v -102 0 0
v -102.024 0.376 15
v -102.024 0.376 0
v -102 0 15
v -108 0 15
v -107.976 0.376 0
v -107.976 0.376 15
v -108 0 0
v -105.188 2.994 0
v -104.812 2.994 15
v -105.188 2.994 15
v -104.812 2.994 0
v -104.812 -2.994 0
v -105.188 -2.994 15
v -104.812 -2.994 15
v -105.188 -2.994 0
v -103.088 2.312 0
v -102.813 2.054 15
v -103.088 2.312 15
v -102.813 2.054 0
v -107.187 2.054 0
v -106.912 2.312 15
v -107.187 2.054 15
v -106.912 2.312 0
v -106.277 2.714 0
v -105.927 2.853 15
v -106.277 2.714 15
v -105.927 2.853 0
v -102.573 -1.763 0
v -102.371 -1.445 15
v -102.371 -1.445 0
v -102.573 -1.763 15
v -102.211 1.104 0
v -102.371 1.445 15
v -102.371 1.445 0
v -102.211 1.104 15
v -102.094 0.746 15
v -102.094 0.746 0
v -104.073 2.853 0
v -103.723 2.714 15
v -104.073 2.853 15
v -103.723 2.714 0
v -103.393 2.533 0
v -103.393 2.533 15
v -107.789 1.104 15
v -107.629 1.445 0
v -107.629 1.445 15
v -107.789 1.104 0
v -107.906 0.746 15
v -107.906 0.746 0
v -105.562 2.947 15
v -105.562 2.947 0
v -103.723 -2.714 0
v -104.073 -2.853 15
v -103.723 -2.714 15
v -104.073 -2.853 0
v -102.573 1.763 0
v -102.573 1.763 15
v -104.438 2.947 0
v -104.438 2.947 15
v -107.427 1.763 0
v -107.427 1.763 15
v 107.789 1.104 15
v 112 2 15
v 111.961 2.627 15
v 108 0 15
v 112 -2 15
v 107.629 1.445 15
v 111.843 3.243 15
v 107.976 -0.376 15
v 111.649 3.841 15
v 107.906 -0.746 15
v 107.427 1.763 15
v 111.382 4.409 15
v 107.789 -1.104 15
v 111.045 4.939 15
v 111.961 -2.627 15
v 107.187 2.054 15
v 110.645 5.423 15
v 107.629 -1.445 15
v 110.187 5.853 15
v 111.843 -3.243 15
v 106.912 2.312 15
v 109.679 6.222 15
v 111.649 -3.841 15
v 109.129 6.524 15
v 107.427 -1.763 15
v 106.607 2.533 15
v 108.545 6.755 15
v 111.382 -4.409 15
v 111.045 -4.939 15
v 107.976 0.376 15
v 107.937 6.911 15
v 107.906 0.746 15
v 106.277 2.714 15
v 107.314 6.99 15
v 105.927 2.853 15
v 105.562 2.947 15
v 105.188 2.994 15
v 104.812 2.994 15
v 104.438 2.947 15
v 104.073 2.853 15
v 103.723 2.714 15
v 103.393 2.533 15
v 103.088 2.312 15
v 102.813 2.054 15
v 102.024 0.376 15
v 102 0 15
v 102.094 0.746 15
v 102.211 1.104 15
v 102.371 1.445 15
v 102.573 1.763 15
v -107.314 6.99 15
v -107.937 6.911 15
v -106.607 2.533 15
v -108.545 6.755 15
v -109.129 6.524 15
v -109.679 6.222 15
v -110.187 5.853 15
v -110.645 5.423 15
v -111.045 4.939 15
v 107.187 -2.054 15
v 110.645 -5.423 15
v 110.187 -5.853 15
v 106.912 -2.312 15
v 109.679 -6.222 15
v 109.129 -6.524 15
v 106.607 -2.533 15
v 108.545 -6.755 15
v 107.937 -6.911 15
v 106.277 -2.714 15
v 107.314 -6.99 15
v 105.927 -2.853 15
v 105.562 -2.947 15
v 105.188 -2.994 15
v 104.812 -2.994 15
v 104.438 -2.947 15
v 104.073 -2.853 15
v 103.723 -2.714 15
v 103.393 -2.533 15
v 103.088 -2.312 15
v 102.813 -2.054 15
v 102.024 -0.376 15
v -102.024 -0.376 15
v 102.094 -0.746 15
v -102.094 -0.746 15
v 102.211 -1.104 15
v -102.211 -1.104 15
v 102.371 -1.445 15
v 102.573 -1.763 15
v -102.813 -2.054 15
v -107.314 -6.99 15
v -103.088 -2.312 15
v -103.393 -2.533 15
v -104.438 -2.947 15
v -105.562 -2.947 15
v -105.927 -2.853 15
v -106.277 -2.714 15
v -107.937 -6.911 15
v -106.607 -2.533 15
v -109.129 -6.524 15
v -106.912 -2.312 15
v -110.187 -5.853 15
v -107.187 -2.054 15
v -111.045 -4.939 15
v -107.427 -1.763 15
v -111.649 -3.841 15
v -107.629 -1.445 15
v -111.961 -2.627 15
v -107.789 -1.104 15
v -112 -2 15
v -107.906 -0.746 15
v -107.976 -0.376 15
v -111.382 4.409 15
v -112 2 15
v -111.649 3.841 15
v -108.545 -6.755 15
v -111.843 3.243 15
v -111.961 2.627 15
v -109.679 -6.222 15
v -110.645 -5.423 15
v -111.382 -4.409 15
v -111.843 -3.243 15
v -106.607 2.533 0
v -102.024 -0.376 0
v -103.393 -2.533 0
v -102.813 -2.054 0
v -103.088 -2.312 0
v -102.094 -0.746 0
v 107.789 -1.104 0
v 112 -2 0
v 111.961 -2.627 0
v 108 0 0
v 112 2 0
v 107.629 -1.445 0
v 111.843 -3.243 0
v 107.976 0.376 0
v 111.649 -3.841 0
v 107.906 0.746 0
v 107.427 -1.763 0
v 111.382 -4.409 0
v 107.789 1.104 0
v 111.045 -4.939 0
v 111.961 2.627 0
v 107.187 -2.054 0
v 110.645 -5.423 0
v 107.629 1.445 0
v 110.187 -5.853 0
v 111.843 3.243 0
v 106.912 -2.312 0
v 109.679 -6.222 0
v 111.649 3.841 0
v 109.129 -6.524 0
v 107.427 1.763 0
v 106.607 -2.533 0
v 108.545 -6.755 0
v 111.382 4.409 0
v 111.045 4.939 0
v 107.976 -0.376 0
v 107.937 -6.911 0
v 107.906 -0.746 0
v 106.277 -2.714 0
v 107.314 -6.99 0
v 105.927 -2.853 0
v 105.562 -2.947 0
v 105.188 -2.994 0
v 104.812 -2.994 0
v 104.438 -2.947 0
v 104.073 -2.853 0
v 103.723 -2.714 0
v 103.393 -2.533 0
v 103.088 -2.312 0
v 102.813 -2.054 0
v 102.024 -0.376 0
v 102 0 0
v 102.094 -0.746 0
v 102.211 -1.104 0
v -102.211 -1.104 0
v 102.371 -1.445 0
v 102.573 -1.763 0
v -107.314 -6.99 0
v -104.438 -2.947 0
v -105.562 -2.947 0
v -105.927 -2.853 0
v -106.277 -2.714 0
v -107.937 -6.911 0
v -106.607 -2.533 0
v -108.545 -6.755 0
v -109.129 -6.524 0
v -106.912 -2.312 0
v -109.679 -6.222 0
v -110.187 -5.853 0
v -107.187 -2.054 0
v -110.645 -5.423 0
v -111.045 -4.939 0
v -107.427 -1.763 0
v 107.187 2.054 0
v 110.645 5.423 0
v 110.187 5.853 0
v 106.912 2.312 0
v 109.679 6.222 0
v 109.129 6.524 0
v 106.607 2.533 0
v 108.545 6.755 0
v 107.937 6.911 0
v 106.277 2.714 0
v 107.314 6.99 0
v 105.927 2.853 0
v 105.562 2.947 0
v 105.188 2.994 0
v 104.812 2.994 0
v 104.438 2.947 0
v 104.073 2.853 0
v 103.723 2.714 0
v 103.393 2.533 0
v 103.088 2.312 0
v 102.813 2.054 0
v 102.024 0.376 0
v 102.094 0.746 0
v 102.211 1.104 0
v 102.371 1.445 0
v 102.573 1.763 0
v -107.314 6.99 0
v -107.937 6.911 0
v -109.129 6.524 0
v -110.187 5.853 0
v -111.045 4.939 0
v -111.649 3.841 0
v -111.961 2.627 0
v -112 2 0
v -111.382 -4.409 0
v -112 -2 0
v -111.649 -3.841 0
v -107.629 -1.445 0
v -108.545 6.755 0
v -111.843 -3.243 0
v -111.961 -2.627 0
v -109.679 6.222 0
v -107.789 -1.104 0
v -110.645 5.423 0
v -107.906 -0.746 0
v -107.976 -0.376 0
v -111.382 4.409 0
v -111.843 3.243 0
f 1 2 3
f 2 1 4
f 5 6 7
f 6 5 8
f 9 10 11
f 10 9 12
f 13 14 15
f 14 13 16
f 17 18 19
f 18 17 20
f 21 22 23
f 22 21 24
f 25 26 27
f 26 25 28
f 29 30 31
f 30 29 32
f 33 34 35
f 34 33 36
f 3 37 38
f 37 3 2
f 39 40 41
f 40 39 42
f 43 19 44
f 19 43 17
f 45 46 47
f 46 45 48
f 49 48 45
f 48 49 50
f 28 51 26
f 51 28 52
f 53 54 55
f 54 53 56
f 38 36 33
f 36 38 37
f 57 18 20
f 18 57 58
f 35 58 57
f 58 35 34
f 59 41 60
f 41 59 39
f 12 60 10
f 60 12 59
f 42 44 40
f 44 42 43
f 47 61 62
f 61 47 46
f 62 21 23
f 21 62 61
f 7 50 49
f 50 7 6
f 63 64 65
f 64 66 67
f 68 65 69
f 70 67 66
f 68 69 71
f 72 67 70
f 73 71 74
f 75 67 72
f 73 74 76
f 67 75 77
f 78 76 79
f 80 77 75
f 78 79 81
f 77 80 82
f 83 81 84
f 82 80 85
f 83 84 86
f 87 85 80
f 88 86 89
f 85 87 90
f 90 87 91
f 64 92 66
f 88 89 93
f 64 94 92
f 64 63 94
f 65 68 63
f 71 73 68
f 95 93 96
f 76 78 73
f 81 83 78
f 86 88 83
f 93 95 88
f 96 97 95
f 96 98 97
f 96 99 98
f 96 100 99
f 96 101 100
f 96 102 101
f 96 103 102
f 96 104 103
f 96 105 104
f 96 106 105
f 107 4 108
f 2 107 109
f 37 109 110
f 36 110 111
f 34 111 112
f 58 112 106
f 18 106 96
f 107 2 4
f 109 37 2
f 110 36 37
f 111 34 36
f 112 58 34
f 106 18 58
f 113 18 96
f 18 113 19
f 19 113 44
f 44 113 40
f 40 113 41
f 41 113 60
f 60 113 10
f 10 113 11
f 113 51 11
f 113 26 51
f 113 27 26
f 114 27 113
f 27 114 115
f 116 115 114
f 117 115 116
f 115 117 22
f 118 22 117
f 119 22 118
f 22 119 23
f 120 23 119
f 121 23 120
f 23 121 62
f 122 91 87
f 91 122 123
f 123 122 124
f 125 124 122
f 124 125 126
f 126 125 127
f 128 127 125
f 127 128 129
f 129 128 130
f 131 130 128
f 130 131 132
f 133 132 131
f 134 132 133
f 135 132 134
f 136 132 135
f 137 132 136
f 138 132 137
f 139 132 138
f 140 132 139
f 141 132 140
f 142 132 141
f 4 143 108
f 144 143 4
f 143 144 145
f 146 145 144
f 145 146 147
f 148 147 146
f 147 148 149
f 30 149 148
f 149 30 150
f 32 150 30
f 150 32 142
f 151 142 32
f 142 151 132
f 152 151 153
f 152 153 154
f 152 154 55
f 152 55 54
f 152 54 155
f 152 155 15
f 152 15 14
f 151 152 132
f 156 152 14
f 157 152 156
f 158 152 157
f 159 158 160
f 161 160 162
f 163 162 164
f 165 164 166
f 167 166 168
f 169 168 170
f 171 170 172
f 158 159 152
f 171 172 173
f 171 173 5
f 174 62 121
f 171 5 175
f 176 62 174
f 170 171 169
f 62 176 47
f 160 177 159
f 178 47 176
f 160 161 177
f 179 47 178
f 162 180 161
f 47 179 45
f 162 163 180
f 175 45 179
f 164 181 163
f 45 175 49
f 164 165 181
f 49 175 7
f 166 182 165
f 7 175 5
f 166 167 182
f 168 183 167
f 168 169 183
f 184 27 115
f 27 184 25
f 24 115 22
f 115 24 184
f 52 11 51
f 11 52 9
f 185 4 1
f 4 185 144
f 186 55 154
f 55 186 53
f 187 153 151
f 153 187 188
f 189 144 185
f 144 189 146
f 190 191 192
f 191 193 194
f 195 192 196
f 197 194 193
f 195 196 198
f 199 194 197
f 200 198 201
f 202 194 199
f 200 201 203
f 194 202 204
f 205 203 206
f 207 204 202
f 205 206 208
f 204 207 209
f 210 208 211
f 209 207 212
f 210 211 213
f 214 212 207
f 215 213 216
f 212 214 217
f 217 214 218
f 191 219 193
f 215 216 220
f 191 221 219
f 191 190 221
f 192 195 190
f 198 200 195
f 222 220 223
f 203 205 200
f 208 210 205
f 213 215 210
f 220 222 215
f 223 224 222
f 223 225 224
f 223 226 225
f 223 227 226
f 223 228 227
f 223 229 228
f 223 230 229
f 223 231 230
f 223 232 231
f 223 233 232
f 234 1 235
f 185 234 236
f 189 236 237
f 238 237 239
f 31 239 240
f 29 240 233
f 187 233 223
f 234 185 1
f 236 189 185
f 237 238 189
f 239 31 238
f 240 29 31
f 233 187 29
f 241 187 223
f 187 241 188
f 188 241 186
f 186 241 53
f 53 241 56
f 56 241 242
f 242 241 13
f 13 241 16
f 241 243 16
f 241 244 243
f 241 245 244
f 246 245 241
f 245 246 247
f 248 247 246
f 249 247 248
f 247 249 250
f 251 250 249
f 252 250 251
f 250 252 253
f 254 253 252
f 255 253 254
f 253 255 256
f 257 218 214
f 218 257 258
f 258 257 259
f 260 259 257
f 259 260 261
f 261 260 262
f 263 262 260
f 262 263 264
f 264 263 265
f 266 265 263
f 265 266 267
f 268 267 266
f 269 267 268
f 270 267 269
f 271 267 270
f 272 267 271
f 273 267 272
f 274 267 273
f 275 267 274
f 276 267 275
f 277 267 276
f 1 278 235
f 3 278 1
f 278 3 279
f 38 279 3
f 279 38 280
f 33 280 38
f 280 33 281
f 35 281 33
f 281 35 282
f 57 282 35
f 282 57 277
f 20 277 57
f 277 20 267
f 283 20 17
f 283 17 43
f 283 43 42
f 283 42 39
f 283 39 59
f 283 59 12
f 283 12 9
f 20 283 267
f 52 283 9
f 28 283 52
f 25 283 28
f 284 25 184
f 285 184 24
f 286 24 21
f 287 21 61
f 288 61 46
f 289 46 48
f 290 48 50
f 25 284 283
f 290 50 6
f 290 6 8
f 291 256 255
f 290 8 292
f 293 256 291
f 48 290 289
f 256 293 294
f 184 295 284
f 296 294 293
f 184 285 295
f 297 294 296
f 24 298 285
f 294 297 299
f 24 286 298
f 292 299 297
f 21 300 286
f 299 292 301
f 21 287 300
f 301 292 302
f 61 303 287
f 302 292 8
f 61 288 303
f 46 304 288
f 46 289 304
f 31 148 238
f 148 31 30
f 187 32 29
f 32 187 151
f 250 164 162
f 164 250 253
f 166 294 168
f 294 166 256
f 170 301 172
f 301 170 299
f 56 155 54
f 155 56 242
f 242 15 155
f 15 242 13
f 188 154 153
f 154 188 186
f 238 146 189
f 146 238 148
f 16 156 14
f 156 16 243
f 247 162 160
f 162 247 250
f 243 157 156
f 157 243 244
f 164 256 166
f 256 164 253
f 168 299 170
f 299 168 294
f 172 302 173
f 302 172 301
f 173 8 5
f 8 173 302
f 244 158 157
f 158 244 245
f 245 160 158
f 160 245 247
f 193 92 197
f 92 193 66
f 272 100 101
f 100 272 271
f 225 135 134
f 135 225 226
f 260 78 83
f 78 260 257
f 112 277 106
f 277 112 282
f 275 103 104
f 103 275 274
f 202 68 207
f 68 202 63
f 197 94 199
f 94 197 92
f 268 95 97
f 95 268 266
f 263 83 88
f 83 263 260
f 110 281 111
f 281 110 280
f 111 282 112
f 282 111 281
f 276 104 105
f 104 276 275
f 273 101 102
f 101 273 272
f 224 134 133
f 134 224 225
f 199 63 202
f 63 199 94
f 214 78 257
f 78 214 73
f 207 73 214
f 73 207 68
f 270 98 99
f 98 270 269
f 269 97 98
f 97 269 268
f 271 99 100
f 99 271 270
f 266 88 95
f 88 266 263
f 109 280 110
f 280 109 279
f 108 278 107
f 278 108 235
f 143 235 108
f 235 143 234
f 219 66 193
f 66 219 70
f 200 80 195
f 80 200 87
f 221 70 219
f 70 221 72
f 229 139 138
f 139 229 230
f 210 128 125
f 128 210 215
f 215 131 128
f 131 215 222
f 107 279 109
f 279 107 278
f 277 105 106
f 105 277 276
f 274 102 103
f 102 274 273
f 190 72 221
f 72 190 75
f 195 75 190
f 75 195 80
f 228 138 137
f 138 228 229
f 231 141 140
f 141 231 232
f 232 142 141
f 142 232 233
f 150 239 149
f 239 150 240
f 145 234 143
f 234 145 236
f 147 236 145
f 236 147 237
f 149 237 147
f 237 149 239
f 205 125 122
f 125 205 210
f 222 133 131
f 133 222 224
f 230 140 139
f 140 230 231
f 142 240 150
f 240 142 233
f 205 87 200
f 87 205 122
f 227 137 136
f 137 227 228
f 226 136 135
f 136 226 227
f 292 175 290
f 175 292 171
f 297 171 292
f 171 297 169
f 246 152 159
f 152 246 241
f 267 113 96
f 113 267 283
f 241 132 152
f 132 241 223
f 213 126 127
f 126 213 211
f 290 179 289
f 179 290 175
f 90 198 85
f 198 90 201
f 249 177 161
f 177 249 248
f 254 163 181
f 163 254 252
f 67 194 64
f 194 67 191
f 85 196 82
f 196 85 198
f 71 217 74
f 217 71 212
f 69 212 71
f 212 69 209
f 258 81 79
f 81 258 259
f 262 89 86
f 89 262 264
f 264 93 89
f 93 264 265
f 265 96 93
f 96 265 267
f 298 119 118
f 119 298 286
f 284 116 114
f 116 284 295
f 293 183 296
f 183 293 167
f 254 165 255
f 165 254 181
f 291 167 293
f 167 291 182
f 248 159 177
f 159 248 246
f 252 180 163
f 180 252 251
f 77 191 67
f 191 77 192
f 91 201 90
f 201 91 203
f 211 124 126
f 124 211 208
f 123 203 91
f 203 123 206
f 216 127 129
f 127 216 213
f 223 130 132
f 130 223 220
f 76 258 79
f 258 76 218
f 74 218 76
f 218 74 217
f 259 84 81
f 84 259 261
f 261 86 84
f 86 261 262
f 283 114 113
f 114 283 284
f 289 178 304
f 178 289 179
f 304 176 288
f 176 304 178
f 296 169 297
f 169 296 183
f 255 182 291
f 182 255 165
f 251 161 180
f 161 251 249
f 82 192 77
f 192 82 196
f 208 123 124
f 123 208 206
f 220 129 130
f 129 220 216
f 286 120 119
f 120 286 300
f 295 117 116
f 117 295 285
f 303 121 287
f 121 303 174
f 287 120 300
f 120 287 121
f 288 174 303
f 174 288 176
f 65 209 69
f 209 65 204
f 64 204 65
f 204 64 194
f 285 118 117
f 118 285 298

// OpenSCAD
$fn = 50;


difference() {
	union() {
		hull() {
			translate(v = [-107.0000000000, 2.0000000000, 0]) {
				cylinder(h = 15, r = 5);
			}
			translate(v = [107.0000000000, 2.0000000000, 0]) {
				cylinder(h = 15, r = 5);
			}
			translate(v = [-107.0000000000, -2.0000000000, 0]) {
				cylinder(h = 15, r = 5);
			}
			translate(v = [107.0000000000, -2.0000000000, 0]) {
				cylinder(h = 15, r = 5);
			}
		}
	}
	union() {
		translate(v = [-105.0000000000, 0.0000000000, 0]) {
			cylinder(h = 15, r = 3.0000000000);
		}
		translate(v = [105.0000000000, 0.0000000000, 0]) {
			cylinder(h = 15, r = 3.0000000000);
		}
		translate(v = [-105.0000000000, 0.0000000000, 0]) {
			cylinder(h = 15, r = 1.5000000000);
		}
		translate(v = [105.0000000000, 0.0000000000, 0]) {
			cylinder(h = 15, r = 1.5000000000);
		}
		translate(v = [-105.0000000000, 0.0000000000, 0]) {
			cylinder(h = 15, r = 1.5000000000);
		}
		translate(v = [105.0000000000, 0.0000000000, 0]) {
			cylinder(h = 15, r = 1.5000000000);
		}
		translate(v = [-105.0000000000, 0.0000000000, 0]) {
			cylinder(h = 15, r = 1.5000000000);
		}
		translate(v = [105.0000000000, 0.0000000000, 0]) {
			cylinder(h = 15, r = 1.5000000000);
		}
	}
}
